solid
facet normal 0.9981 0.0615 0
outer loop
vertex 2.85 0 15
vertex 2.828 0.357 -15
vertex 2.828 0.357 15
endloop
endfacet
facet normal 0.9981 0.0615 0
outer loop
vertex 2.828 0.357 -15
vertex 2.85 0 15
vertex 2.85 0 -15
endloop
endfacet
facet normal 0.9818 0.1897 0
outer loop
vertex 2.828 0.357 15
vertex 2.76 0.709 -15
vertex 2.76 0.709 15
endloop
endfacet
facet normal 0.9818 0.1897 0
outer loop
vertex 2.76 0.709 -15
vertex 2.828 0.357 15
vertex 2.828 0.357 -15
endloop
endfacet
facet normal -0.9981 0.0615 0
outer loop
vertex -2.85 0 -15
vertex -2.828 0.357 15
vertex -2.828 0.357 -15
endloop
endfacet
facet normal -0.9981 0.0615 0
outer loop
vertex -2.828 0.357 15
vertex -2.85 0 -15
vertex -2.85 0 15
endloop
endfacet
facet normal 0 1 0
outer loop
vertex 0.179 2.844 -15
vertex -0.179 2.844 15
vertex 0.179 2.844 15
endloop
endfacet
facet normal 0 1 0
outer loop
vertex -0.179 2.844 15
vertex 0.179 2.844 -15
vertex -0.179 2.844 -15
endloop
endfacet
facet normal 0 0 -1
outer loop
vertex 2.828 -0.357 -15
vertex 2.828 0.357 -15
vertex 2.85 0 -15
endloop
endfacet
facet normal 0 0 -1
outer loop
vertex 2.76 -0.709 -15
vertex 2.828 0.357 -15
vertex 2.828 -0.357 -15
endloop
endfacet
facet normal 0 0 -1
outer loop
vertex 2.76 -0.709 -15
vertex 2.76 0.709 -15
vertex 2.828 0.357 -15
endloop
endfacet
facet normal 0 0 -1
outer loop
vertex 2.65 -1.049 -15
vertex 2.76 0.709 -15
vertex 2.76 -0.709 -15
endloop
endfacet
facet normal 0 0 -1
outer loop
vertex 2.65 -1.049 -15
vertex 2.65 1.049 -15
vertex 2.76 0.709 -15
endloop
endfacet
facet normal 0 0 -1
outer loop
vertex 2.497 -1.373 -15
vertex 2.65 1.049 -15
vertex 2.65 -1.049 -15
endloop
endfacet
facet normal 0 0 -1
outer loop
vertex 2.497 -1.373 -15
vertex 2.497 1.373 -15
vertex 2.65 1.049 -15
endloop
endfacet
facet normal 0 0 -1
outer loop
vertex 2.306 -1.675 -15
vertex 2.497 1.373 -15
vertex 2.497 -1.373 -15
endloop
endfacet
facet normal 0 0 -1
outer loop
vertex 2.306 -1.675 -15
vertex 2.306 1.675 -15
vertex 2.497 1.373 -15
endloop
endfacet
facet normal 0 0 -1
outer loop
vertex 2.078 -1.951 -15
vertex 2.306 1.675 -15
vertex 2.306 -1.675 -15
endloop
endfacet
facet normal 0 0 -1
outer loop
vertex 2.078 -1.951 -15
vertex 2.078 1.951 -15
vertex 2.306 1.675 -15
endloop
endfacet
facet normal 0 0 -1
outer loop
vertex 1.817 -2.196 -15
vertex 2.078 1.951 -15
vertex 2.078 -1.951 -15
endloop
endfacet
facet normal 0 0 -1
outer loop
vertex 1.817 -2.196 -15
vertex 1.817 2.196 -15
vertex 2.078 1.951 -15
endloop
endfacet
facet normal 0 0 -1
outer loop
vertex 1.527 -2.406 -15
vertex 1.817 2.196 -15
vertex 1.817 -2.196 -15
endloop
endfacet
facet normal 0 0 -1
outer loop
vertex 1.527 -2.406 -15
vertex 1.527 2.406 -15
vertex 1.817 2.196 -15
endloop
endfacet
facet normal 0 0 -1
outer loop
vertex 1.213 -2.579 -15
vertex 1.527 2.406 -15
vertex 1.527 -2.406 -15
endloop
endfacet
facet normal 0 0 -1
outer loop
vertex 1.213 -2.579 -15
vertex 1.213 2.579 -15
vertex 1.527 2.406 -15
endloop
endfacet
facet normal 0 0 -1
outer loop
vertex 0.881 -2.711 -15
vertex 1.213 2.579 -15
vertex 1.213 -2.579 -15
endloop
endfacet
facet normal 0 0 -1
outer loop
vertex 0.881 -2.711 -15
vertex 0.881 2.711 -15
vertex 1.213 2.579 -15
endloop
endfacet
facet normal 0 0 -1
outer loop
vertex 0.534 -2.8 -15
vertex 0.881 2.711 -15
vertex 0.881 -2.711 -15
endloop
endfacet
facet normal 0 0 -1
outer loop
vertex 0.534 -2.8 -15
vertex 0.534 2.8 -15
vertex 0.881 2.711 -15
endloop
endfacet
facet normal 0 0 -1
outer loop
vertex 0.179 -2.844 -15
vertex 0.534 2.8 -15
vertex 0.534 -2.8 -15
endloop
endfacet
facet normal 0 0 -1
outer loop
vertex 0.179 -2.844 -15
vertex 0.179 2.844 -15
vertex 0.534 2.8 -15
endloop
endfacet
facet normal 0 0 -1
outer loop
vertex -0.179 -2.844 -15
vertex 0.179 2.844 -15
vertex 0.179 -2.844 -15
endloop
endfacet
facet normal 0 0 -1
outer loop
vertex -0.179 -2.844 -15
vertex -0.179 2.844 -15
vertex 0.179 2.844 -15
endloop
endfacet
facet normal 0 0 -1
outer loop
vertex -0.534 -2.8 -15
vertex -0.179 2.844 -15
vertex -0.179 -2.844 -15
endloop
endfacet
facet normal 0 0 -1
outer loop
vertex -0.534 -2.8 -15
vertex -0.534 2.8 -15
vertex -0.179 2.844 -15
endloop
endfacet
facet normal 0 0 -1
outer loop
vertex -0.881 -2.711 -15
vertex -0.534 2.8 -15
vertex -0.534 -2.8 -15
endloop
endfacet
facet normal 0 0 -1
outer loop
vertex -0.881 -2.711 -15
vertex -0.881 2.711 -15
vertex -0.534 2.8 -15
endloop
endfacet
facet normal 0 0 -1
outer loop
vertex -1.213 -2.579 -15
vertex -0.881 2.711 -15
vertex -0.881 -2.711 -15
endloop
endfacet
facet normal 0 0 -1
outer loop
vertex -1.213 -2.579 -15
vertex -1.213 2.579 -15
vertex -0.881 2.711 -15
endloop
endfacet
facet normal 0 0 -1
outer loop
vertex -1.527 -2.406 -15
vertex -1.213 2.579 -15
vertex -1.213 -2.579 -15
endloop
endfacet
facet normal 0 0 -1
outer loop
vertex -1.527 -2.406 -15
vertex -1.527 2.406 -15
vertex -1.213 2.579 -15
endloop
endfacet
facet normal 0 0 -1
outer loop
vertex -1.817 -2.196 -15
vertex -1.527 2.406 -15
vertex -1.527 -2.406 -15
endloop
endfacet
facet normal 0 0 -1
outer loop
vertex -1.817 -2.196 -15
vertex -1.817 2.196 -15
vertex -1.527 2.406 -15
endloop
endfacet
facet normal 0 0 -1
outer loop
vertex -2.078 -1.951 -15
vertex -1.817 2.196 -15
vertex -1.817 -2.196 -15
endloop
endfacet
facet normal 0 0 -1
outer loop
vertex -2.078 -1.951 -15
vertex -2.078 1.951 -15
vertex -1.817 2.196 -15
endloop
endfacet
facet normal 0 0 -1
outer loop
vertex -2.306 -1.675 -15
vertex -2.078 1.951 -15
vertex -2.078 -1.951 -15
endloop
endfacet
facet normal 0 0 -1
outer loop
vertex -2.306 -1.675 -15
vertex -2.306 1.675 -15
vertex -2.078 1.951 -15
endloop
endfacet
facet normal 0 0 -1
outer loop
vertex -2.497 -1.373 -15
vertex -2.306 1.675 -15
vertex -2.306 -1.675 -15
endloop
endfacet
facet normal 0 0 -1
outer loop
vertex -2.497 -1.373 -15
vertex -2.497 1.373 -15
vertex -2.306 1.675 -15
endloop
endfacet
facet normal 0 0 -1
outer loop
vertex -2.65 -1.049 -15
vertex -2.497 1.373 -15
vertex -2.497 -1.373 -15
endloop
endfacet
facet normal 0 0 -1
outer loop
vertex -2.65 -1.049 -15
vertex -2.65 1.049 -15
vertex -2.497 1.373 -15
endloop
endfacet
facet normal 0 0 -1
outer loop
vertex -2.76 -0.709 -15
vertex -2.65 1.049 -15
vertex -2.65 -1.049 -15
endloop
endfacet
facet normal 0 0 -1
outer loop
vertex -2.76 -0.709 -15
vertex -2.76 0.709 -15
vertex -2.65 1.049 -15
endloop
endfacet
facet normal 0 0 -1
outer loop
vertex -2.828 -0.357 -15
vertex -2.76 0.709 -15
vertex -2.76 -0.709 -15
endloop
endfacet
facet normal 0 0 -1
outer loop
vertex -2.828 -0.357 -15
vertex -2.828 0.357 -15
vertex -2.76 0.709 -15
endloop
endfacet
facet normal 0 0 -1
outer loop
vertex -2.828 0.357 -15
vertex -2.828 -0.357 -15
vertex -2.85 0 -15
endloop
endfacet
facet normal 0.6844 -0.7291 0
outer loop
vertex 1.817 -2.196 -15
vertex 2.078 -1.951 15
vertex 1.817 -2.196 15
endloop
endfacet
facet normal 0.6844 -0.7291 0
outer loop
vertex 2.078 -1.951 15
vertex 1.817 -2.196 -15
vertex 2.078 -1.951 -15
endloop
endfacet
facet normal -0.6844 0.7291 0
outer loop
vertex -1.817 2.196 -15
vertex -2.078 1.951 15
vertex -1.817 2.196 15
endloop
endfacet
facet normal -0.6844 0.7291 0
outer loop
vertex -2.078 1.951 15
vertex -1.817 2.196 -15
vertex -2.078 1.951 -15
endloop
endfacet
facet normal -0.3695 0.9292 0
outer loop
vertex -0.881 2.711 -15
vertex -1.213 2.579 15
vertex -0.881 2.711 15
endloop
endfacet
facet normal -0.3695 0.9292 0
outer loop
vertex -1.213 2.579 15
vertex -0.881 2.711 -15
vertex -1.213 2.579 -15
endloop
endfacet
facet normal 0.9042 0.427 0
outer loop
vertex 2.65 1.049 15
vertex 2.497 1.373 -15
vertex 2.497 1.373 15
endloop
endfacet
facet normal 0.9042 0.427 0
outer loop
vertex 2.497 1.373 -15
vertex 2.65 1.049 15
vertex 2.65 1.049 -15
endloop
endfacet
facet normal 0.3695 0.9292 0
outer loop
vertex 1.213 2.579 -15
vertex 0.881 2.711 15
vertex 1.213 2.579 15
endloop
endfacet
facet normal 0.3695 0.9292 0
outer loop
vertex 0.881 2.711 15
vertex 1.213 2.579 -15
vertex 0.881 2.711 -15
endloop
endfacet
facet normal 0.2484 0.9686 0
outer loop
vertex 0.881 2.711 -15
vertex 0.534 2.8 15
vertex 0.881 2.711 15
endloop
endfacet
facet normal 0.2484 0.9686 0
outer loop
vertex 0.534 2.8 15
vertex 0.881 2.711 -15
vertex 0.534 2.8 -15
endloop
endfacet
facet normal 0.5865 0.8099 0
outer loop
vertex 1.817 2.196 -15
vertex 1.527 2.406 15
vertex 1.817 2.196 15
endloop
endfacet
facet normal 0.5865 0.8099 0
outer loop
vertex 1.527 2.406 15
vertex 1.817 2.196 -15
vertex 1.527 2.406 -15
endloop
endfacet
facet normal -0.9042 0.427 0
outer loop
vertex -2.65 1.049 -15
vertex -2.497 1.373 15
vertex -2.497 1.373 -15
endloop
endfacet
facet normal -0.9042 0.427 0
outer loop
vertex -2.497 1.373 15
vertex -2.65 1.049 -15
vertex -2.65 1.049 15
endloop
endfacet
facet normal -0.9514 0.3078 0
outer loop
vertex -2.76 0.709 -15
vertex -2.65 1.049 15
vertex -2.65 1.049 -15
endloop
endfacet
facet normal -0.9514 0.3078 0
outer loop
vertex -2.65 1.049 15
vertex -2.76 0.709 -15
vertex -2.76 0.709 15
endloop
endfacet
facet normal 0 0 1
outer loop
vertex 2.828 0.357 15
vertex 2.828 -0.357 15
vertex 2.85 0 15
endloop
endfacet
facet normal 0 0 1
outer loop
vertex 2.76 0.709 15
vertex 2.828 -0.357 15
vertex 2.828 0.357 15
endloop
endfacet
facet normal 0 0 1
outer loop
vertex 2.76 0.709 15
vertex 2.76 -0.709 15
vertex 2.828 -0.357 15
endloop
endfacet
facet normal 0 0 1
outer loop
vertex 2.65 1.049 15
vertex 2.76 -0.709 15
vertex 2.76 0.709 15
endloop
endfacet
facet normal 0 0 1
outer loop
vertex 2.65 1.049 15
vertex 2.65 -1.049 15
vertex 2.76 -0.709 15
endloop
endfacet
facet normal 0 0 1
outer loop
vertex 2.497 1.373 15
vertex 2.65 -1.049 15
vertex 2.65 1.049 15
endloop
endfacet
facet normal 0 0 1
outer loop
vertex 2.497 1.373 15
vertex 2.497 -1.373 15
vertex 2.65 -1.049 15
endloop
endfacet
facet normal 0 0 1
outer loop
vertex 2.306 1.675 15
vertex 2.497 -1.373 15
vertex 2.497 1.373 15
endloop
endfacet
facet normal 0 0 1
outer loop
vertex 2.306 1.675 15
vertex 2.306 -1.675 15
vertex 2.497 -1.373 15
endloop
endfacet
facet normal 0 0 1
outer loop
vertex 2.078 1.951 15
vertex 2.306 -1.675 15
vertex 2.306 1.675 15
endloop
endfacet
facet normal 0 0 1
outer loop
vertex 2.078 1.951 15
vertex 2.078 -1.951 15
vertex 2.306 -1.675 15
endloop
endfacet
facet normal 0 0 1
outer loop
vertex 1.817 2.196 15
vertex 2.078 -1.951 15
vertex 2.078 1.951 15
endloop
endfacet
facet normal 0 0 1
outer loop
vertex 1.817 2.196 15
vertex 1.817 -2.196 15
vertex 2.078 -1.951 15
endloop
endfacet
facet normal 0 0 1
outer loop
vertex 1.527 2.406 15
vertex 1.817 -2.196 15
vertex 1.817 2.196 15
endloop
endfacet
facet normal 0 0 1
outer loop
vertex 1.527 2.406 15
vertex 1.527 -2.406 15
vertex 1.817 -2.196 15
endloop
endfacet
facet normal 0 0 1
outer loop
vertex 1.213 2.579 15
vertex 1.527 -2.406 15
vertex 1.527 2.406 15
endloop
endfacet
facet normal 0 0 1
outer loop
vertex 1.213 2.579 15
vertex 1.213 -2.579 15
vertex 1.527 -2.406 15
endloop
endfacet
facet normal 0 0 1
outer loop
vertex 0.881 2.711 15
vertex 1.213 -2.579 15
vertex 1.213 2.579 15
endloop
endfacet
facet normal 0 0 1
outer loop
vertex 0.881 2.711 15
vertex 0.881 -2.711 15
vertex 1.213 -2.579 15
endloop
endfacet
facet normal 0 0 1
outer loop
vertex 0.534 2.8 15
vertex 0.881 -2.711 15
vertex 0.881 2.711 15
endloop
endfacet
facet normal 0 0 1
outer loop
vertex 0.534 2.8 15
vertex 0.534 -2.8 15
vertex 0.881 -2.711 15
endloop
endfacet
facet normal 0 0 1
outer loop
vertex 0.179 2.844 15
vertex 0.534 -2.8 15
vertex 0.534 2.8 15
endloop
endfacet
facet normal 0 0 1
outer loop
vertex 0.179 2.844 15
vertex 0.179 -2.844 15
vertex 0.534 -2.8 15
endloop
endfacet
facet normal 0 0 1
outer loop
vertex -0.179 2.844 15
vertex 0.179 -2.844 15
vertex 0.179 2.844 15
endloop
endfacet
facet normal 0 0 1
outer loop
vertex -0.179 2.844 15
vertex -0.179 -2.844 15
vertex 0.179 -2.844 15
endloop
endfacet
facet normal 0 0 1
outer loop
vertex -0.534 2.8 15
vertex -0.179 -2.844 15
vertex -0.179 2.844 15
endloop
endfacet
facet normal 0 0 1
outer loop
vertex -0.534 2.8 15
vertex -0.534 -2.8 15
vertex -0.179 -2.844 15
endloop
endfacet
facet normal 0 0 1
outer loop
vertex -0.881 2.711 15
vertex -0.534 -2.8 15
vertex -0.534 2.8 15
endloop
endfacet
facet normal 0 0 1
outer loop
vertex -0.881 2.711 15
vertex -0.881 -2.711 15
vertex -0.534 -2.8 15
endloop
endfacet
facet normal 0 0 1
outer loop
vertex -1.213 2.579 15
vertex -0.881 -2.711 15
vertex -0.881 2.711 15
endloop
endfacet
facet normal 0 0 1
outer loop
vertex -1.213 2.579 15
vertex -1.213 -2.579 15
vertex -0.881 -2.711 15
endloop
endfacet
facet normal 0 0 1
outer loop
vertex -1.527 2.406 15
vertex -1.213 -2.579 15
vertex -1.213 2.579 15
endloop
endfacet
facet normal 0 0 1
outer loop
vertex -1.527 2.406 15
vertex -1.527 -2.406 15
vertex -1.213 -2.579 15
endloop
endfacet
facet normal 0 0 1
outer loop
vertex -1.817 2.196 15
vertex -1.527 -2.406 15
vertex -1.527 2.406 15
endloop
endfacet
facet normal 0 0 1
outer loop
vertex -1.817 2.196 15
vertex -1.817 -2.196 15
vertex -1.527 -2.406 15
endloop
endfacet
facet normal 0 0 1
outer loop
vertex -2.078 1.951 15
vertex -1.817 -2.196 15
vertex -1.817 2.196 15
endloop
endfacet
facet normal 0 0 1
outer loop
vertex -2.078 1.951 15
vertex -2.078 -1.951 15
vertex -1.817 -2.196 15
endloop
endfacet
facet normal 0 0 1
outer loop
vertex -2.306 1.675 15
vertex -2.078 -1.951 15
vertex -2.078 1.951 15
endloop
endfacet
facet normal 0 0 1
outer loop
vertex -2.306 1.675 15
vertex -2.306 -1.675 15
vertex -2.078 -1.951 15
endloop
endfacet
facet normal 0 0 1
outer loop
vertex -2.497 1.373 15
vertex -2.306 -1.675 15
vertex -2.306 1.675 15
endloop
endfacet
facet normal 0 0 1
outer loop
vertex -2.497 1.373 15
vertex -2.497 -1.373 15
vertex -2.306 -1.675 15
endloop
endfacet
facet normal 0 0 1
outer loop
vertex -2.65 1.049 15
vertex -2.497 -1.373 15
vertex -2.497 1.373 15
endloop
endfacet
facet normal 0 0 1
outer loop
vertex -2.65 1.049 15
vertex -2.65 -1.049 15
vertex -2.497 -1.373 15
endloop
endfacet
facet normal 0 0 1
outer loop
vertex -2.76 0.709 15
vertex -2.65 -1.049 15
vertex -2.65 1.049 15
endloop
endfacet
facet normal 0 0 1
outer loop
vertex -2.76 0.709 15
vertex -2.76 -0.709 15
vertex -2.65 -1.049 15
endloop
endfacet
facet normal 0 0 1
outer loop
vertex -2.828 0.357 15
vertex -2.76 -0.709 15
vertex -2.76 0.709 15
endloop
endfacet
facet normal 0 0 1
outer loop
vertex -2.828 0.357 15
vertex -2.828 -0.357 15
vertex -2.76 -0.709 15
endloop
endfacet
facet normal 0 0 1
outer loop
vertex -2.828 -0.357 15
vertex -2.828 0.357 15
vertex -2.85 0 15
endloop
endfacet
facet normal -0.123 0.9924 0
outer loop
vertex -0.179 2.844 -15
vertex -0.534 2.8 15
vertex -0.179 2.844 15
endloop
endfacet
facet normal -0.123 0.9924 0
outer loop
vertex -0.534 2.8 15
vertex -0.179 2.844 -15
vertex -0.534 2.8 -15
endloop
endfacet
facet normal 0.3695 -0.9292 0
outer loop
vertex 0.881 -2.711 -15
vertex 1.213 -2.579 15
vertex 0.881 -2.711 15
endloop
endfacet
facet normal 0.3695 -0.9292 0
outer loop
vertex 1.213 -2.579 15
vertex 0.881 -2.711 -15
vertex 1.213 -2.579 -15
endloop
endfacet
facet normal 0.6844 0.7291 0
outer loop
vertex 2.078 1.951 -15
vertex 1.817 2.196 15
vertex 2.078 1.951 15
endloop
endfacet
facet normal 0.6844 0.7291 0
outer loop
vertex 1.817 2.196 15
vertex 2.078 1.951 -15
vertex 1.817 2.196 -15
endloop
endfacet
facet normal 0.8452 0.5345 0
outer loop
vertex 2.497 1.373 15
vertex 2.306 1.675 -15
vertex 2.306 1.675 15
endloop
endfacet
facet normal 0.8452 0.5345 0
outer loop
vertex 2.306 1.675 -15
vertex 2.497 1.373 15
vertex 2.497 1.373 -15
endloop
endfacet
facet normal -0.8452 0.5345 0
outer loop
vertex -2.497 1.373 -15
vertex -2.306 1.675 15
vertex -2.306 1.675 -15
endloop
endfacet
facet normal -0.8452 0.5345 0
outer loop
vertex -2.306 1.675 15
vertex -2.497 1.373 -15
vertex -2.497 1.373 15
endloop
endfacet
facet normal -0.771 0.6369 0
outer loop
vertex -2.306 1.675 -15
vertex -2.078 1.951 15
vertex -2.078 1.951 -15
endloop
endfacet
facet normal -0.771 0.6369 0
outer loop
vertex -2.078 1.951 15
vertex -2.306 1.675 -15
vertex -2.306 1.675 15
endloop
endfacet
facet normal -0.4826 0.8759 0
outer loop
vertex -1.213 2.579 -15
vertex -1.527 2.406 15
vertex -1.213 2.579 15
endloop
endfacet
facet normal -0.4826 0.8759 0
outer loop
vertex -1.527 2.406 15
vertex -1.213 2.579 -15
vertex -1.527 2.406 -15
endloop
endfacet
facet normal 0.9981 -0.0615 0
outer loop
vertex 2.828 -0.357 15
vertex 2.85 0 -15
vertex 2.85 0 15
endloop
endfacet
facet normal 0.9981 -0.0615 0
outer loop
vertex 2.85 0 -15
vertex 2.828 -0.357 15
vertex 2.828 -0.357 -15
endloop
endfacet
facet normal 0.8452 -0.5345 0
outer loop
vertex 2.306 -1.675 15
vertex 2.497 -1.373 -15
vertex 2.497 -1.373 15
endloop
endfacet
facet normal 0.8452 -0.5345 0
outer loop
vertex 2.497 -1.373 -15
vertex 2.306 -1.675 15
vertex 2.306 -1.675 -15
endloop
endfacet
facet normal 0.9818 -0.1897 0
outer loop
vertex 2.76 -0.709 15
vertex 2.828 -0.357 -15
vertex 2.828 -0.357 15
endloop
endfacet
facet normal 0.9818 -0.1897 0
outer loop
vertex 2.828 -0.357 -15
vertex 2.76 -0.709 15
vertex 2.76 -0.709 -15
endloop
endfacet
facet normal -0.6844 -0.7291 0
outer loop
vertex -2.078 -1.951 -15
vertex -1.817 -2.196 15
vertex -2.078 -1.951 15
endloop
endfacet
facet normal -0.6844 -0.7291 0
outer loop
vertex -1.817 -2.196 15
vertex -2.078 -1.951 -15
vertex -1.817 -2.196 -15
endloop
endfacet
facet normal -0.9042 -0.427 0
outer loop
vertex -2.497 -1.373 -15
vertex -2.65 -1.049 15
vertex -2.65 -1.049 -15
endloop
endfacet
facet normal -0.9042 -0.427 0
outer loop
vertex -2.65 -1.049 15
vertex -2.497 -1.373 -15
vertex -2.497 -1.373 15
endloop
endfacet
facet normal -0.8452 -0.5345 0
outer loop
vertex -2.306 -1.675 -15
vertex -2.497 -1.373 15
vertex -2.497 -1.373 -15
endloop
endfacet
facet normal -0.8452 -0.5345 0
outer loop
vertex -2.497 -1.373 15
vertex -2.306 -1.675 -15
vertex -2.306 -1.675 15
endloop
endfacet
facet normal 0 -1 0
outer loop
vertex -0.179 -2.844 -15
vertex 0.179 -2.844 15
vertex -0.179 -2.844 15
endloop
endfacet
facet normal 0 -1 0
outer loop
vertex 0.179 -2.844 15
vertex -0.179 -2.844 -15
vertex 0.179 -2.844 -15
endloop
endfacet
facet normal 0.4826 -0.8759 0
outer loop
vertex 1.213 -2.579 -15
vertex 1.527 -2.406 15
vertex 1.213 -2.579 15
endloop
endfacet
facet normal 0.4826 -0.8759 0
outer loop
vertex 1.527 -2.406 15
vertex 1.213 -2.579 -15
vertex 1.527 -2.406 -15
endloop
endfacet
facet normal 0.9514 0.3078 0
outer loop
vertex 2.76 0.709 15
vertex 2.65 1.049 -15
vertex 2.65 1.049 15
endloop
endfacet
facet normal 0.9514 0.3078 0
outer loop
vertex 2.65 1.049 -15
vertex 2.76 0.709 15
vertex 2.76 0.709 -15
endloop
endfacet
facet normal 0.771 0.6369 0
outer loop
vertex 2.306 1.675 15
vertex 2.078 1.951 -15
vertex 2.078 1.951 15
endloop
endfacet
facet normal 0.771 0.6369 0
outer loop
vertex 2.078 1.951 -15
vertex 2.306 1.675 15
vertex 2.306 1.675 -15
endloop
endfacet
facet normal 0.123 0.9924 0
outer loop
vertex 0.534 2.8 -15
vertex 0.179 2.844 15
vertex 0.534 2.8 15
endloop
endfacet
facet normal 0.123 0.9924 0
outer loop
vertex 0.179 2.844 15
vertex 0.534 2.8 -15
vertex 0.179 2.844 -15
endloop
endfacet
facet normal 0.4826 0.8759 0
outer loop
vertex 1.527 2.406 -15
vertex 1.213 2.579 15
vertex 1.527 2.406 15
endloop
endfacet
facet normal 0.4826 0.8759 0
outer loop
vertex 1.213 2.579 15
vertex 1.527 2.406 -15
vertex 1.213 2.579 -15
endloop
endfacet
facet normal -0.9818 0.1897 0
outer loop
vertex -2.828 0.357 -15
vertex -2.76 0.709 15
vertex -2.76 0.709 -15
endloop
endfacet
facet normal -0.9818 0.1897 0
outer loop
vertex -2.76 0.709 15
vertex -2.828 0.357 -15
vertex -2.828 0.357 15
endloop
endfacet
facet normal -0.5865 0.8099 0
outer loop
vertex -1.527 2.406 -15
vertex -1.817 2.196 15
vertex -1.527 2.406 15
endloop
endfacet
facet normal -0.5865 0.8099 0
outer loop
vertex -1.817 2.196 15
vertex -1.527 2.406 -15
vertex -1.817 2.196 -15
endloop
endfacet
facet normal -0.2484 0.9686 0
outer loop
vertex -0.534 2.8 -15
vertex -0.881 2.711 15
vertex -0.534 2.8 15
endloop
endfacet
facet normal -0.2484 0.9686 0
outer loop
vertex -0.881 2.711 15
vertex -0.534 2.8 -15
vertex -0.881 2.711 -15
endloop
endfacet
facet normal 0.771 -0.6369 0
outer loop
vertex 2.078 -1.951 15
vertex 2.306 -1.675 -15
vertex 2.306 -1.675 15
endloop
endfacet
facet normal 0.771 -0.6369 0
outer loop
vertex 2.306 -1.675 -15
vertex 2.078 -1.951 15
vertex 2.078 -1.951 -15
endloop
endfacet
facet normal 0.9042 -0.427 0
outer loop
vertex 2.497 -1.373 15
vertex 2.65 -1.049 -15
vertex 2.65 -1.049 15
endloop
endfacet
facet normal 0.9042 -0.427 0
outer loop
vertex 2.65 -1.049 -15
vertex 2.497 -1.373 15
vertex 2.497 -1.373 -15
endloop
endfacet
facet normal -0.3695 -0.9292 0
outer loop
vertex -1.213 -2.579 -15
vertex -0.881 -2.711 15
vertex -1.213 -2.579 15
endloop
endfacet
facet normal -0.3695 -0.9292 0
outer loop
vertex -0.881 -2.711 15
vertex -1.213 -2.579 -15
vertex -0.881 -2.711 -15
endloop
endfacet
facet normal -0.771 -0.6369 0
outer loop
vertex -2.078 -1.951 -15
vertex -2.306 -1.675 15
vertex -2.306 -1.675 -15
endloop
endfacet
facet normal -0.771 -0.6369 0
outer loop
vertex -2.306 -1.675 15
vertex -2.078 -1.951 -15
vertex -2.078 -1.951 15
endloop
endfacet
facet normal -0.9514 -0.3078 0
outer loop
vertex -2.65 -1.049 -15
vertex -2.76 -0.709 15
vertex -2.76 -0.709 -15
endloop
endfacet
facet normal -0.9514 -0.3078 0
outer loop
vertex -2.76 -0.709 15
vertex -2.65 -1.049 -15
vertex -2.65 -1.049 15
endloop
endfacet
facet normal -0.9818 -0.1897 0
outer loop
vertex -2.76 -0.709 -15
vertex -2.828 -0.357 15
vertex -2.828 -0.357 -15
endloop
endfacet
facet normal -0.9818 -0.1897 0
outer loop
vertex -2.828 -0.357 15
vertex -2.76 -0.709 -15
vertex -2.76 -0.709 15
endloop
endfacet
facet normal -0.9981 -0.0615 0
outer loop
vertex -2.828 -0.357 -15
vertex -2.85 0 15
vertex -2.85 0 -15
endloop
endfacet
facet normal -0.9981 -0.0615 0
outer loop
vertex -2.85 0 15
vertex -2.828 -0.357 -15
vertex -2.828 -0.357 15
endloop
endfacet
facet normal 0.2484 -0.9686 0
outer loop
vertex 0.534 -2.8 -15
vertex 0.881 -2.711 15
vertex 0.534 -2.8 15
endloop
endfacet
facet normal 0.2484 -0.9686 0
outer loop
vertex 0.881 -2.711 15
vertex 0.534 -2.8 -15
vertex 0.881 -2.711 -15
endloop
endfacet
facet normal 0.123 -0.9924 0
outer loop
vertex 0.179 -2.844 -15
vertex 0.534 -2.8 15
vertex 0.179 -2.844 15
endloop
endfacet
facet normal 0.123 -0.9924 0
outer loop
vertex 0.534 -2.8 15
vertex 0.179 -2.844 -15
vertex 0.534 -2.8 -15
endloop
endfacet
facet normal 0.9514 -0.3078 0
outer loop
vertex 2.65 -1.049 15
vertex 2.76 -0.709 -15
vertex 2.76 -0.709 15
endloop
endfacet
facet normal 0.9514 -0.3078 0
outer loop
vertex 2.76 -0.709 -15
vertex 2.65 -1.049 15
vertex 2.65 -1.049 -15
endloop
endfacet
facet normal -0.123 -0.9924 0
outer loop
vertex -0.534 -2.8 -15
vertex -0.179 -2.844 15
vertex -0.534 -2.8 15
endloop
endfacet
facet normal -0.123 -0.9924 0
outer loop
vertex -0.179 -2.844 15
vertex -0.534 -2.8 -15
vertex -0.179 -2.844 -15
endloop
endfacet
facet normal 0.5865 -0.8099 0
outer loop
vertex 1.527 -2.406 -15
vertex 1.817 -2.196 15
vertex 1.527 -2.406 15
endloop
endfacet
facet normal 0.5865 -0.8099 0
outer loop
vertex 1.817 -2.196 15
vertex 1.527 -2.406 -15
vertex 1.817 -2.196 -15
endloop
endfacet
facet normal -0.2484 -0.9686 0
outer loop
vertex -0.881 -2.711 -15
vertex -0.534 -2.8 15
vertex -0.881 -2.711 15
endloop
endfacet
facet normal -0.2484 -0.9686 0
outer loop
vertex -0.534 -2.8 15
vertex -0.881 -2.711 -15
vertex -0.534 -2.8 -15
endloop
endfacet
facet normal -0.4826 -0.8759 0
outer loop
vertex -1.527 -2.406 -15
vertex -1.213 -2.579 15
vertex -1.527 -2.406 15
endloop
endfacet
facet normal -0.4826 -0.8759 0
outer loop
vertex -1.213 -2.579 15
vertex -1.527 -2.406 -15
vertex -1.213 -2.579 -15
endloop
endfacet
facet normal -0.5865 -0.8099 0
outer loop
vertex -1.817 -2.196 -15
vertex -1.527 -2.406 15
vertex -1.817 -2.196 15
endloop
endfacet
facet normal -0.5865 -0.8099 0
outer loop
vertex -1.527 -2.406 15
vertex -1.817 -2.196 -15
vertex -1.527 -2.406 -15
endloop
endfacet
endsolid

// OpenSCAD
$fn = 50;


difference() {
	union() {
		translate(v = [0, 0, -15.0000000000]) {
			cylinder(h = 30, r = 2.8500000000);
		}
	}
	union() {
		translate(v = [0, 0, -100.0000000000]) {
			cylinder(h = 200, r = 0);
		}
	}
}
